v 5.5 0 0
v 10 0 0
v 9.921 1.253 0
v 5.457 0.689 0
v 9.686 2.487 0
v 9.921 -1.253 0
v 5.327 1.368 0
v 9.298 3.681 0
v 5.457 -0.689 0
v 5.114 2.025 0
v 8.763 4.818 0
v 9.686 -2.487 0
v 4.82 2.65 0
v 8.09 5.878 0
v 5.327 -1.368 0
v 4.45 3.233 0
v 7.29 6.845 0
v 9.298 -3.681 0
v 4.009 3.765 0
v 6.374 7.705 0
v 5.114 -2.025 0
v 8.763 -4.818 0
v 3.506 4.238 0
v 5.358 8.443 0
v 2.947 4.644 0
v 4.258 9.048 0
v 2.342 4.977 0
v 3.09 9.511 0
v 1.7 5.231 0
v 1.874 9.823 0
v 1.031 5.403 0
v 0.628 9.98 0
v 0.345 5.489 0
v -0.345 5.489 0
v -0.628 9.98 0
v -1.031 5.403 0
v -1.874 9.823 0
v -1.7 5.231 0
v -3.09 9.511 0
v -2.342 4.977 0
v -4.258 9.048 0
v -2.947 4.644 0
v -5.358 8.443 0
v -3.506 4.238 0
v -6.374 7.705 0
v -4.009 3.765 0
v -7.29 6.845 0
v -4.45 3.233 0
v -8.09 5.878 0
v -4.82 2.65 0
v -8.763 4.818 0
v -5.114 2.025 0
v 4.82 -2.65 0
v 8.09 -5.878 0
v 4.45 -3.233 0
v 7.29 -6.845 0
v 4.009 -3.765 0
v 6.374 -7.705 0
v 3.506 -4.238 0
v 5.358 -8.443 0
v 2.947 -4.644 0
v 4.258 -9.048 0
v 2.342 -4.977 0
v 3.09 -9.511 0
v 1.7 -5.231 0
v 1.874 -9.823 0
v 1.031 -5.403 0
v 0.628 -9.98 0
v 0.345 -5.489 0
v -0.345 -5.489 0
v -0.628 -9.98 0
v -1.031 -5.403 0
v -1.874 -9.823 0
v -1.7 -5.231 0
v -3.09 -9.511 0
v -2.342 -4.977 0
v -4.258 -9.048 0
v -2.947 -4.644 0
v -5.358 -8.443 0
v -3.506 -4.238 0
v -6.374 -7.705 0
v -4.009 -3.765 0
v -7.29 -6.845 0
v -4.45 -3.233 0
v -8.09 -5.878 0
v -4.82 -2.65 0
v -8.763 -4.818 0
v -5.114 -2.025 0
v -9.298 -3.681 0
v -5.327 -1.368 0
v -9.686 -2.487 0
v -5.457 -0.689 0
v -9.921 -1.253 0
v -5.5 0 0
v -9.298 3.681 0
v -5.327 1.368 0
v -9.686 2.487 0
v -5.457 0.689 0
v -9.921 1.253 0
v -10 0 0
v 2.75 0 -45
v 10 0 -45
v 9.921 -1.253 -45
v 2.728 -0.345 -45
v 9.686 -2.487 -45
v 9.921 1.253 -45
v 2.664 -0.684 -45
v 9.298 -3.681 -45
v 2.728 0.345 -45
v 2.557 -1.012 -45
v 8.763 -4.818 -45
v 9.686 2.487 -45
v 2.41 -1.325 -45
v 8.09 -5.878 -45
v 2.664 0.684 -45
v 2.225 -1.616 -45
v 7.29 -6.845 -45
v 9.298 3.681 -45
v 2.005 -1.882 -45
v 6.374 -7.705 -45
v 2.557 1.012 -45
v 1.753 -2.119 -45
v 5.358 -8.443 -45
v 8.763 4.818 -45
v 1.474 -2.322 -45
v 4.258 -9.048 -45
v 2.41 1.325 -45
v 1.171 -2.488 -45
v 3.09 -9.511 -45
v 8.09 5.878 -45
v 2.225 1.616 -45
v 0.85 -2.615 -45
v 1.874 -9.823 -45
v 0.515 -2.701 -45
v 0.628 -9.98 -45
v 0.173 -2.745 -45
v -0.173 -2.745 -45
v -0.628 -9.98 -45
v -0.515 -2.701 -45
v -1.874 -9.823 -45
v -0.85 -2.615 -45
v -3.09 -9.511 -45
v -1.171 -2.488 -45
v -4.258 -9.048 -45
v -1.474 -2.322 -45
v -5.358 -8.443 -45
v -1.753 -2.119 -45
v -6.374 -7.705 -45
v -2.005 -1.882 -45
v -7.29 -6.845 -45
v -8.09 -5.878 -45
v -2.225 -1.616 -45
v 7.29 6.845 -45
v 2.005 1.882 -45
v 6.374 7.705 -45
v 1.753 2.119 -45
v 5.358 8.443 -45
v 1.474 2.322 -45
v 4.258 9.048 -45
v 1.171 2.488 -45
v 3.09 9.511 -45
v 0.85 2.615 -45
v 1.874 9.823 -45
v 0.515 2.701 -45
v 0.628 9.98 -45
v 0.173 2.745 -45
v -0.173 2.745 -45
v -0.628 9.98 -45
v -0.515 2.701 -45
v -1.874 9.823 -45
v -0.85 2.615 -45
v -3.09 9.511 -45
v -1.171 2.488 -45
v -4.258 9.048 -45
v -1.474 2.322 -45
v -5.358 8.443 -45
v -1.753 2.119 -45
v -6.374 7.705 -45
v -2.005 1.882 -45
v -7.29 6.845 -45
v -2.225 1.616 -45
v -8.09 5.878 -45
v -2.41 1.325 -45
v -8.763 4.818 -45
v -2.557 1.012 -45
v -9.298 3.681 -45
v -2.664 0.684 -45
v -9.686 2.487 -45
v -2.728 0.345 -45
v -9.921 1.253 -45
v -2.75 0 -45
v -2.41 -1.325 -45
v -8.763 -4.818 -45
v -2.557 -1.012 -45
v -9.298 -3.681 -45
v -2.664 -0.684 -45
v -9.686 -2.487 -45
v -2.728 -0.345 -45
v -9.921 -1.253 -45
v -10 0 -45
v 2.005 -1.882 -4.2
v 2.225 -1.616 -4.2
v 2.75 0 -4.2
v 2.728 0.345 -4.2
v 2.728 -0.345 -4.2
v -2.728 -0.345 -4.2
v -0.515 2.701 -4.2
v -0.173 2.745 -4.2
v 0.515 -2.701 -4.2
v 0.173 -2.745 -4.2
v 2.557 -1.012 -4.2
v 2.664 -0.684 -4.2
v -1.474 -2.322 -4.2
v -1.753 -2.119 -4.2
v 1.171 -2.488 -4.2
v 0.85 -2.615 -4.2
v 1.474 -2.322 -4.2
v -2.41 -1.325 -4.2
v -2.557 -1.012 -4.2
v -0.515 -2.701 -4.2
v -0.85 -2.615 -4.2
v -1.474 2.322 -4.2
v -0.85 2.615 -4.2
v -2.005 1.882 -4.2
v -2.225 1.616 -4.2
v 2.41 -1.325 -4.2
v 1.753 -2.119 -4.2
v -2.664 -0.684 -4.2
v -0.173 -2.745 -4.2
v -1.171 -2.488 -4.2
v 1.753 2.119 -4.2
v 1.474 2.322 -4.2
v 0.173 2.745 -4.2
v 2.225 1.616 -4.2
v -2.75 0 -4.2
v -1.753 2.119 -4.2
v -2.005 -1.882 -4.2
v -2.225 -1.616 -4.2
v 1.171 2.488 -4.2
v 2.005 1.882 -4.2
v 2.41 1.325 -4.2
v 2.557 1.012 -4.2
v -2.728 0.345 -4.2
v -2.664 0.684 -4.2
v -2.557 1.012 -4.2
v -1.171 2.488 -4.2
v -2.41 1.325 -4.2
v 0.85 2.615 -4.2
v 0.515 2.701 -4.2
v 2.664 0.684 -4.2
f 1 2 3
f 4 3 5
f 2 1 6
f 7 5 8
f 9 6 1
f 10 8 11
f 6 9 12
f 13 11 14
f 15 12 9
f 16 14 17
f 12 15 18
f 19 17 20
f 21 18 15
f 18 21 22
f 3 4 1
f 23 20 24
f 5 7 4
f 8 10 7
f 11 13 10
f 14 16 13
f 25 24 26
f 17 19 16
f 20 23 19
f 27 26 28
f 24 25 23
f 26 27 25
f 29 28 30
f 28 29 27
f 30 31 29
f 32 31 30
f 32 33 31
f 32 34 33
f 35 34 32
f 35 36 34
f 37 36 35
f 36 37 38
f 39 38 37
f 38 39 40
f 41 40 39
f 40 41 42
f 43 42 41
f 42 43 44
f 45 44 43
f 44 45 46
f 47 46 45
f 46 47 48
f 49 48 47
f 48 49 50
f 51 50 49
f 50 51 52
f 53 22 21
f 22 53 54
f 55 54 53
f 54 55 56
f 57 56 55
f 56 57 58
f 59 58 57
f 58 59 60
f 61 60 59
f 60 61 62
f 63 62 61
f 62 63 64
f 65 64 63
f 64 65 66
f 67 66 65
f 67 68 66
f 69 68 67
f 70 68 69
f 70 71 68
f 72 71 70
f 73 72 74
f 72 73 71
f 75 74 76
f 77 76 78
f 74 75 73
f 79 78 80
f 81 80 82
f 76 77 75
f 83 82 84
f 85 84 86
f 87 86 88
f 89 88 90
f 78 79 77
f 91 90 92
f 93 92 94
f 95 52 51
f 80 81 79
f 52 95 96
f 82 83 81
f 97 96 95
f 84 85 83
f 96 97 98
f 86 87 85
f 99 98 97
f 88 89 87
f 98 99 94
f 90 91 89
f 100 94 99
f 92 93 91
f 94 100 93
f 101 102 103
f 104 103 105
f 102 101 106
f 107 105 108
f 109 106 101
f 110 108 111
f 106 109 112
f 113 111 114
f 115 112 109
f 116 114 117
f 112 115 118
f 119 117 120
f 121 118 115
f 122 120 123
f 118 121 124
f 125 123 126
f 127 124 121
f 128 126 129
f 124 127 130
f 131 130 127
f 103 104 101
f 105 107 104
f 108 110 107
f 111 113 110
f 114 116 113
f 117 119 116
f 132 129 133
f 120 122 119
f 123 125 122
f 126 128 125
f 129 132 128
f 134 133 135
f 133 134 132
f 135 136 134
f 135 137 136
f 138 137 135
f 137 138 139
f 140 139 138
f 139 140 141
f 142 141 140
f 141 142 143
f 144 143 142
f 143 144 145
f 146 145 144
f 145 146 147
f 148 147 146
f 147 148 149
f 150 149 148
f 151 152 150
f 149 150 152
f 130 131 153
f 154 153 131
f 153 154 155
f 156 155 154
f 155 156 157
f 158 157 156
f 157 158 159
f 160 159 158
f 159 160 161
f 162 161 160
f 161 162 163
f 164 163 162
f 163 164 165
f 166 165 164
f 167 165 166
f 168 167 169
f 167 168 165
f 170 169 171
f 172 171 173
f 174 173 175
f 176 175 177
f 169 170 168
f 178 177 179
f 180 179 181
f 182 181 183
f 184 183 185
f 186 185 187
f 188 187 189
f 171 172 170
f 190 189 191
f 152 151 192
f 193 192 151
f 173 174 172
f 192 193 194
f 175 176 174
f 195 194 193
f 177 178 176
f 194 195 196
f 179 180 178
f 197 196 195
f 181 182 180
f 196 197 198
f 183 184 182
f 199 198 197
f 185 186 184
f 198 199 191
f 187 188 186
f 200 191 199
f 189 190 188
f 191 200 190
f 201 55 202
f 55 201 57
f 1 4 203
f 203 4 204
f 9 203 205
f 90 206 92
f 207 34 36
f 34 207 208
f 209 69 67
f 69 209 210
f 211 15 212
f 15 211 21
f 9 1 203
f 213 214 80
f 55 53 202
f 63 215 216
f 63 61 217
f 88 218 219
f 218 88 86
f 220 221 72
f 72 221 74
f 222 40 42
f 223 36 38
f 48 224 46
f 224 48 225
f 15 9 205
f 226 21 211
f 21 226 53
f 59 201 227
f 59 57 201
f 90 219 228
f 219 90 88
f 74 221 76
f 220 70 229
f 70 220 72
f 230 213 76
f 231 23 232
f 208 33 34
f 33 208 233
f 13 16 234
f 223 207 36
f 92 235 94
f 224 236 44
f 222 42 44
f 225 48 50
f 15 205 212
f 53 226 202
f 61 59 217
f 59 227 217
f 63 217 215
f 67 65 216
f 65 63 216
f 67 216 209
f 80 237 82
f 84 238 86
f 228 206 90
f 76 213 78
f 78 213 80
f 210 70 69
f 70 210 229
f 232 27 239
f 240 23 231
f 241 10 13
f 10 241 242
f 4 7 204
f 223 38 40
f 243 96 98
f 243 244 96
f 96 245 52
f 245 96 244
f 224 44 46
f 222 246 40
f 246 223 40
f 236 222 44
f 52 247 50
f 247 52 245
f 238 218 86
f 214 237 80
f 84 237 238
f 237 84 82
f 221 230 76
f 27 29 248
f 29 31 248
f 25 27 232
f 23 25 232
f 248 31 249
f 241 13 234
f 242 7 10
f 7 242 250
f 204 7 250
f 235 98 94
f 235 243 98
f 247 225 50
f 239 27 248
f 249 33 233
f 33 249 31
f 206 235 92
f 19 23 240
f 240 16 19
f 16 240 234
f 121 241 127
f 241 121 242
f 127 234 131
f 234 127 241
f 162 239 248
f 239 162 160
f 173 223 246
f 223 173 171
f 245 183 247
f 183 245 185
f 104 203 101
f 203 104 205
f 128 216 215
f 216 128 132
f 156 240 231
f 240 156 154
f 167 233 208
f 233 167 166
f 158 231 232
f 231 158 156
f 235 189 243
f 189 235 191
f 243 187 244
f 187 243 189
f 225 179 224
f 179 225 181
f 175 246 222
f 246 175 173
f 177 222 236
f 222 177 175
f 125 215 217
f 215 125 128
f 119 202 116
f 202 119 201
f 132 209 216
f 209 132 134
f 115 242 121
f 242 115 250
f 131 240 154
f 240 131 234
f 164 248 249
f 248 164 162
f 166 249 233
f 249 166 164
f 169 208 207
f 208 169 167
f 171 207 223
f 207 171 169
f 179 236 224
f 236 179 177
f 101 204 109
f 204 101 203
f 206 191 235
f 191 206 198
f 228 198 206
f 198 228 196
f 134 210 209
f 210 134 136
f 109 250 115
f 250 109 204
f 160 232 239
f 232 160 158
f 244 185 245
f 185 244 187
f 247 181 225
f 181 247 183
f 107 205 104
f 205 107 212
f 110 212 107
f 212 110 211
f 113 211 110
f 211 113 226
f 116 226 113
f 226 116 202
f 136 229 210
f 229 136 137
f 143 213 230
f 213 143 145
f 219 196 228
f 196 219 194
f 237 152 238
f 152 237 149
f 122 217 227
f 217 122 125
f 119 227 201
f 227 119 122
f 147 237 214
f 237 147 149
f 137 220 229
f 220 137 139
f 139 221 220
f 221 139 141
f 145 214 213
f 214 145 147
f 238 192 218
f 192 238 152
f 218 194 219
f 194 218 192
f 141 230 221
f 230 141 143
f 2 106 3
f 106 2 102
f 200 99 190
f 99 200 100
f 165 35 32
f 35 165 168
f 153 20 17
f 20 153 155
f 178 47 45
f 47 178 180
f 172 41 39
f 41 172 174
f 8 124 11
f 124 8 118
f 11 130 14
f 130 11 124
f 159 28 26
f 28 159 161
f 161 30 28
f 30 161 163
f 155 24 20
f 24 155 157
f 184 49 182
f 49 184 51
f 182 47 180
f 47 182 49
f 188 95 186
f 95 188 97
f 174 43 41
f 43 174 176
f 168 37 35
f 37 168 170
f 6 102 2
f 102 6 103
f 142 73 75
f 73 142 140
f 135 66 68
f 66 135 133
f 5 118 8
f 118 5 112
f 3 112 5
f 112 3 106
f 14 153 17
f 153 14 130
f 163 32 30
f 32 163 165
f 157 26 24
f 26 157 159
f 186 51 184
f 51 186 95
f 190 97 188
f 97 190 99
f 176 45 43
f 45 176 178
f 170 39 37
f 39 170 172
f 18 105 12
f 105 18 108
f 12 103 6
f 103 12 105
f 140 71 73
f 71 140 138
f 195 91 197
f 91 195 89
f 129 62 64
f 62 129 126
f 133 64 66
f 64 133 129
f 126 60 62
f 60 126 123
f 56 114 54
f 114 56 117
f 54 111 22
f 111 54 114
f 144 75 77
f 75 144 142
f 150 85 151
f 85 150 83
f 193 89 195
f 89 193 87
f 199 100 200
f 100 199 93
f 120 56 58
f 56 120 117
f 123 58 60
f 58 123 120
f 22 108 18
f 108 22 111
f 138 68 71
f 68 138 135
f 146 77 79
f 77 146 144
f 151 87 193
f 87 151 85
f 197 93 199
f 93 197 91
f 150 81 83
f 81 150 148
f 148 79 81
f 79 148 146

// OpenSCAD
$fn = 50;


difference() {
	union() {
		translate(v = [0, 0, -45.0000000000]) {
			cylinder(h = 45, r = 10.0000000000);
		}
		cylinder(h = 0, r = 20.0000000000);
	}
	union() {
		translate(v = [0, 0, 0]) {
			rotate(a = [0, 0, 0]) {
				difference() {
					union() {
						#translate(v = [0, 0, -45.0000000000]) {
							cylinder(h = 45, r = 2.2500000000);
						}
						#translate(v = [0, 0, -4.2000000000]) {
							cylinder(h = 4.2000000000, r1 = 2.7500000000, r2 = 5.5000000000);
						}
						#translate(v = [0, 0, -45.0000000000]) {
							cylinder(h = 45, r = 2.7500000000);
						}
						#translate(v = [0, 0, -45.0000000000]) {
							cylinder(h = 45, r = 2.2500000000);
						}
					}
					union();
				}
			}
		}
	}
}
